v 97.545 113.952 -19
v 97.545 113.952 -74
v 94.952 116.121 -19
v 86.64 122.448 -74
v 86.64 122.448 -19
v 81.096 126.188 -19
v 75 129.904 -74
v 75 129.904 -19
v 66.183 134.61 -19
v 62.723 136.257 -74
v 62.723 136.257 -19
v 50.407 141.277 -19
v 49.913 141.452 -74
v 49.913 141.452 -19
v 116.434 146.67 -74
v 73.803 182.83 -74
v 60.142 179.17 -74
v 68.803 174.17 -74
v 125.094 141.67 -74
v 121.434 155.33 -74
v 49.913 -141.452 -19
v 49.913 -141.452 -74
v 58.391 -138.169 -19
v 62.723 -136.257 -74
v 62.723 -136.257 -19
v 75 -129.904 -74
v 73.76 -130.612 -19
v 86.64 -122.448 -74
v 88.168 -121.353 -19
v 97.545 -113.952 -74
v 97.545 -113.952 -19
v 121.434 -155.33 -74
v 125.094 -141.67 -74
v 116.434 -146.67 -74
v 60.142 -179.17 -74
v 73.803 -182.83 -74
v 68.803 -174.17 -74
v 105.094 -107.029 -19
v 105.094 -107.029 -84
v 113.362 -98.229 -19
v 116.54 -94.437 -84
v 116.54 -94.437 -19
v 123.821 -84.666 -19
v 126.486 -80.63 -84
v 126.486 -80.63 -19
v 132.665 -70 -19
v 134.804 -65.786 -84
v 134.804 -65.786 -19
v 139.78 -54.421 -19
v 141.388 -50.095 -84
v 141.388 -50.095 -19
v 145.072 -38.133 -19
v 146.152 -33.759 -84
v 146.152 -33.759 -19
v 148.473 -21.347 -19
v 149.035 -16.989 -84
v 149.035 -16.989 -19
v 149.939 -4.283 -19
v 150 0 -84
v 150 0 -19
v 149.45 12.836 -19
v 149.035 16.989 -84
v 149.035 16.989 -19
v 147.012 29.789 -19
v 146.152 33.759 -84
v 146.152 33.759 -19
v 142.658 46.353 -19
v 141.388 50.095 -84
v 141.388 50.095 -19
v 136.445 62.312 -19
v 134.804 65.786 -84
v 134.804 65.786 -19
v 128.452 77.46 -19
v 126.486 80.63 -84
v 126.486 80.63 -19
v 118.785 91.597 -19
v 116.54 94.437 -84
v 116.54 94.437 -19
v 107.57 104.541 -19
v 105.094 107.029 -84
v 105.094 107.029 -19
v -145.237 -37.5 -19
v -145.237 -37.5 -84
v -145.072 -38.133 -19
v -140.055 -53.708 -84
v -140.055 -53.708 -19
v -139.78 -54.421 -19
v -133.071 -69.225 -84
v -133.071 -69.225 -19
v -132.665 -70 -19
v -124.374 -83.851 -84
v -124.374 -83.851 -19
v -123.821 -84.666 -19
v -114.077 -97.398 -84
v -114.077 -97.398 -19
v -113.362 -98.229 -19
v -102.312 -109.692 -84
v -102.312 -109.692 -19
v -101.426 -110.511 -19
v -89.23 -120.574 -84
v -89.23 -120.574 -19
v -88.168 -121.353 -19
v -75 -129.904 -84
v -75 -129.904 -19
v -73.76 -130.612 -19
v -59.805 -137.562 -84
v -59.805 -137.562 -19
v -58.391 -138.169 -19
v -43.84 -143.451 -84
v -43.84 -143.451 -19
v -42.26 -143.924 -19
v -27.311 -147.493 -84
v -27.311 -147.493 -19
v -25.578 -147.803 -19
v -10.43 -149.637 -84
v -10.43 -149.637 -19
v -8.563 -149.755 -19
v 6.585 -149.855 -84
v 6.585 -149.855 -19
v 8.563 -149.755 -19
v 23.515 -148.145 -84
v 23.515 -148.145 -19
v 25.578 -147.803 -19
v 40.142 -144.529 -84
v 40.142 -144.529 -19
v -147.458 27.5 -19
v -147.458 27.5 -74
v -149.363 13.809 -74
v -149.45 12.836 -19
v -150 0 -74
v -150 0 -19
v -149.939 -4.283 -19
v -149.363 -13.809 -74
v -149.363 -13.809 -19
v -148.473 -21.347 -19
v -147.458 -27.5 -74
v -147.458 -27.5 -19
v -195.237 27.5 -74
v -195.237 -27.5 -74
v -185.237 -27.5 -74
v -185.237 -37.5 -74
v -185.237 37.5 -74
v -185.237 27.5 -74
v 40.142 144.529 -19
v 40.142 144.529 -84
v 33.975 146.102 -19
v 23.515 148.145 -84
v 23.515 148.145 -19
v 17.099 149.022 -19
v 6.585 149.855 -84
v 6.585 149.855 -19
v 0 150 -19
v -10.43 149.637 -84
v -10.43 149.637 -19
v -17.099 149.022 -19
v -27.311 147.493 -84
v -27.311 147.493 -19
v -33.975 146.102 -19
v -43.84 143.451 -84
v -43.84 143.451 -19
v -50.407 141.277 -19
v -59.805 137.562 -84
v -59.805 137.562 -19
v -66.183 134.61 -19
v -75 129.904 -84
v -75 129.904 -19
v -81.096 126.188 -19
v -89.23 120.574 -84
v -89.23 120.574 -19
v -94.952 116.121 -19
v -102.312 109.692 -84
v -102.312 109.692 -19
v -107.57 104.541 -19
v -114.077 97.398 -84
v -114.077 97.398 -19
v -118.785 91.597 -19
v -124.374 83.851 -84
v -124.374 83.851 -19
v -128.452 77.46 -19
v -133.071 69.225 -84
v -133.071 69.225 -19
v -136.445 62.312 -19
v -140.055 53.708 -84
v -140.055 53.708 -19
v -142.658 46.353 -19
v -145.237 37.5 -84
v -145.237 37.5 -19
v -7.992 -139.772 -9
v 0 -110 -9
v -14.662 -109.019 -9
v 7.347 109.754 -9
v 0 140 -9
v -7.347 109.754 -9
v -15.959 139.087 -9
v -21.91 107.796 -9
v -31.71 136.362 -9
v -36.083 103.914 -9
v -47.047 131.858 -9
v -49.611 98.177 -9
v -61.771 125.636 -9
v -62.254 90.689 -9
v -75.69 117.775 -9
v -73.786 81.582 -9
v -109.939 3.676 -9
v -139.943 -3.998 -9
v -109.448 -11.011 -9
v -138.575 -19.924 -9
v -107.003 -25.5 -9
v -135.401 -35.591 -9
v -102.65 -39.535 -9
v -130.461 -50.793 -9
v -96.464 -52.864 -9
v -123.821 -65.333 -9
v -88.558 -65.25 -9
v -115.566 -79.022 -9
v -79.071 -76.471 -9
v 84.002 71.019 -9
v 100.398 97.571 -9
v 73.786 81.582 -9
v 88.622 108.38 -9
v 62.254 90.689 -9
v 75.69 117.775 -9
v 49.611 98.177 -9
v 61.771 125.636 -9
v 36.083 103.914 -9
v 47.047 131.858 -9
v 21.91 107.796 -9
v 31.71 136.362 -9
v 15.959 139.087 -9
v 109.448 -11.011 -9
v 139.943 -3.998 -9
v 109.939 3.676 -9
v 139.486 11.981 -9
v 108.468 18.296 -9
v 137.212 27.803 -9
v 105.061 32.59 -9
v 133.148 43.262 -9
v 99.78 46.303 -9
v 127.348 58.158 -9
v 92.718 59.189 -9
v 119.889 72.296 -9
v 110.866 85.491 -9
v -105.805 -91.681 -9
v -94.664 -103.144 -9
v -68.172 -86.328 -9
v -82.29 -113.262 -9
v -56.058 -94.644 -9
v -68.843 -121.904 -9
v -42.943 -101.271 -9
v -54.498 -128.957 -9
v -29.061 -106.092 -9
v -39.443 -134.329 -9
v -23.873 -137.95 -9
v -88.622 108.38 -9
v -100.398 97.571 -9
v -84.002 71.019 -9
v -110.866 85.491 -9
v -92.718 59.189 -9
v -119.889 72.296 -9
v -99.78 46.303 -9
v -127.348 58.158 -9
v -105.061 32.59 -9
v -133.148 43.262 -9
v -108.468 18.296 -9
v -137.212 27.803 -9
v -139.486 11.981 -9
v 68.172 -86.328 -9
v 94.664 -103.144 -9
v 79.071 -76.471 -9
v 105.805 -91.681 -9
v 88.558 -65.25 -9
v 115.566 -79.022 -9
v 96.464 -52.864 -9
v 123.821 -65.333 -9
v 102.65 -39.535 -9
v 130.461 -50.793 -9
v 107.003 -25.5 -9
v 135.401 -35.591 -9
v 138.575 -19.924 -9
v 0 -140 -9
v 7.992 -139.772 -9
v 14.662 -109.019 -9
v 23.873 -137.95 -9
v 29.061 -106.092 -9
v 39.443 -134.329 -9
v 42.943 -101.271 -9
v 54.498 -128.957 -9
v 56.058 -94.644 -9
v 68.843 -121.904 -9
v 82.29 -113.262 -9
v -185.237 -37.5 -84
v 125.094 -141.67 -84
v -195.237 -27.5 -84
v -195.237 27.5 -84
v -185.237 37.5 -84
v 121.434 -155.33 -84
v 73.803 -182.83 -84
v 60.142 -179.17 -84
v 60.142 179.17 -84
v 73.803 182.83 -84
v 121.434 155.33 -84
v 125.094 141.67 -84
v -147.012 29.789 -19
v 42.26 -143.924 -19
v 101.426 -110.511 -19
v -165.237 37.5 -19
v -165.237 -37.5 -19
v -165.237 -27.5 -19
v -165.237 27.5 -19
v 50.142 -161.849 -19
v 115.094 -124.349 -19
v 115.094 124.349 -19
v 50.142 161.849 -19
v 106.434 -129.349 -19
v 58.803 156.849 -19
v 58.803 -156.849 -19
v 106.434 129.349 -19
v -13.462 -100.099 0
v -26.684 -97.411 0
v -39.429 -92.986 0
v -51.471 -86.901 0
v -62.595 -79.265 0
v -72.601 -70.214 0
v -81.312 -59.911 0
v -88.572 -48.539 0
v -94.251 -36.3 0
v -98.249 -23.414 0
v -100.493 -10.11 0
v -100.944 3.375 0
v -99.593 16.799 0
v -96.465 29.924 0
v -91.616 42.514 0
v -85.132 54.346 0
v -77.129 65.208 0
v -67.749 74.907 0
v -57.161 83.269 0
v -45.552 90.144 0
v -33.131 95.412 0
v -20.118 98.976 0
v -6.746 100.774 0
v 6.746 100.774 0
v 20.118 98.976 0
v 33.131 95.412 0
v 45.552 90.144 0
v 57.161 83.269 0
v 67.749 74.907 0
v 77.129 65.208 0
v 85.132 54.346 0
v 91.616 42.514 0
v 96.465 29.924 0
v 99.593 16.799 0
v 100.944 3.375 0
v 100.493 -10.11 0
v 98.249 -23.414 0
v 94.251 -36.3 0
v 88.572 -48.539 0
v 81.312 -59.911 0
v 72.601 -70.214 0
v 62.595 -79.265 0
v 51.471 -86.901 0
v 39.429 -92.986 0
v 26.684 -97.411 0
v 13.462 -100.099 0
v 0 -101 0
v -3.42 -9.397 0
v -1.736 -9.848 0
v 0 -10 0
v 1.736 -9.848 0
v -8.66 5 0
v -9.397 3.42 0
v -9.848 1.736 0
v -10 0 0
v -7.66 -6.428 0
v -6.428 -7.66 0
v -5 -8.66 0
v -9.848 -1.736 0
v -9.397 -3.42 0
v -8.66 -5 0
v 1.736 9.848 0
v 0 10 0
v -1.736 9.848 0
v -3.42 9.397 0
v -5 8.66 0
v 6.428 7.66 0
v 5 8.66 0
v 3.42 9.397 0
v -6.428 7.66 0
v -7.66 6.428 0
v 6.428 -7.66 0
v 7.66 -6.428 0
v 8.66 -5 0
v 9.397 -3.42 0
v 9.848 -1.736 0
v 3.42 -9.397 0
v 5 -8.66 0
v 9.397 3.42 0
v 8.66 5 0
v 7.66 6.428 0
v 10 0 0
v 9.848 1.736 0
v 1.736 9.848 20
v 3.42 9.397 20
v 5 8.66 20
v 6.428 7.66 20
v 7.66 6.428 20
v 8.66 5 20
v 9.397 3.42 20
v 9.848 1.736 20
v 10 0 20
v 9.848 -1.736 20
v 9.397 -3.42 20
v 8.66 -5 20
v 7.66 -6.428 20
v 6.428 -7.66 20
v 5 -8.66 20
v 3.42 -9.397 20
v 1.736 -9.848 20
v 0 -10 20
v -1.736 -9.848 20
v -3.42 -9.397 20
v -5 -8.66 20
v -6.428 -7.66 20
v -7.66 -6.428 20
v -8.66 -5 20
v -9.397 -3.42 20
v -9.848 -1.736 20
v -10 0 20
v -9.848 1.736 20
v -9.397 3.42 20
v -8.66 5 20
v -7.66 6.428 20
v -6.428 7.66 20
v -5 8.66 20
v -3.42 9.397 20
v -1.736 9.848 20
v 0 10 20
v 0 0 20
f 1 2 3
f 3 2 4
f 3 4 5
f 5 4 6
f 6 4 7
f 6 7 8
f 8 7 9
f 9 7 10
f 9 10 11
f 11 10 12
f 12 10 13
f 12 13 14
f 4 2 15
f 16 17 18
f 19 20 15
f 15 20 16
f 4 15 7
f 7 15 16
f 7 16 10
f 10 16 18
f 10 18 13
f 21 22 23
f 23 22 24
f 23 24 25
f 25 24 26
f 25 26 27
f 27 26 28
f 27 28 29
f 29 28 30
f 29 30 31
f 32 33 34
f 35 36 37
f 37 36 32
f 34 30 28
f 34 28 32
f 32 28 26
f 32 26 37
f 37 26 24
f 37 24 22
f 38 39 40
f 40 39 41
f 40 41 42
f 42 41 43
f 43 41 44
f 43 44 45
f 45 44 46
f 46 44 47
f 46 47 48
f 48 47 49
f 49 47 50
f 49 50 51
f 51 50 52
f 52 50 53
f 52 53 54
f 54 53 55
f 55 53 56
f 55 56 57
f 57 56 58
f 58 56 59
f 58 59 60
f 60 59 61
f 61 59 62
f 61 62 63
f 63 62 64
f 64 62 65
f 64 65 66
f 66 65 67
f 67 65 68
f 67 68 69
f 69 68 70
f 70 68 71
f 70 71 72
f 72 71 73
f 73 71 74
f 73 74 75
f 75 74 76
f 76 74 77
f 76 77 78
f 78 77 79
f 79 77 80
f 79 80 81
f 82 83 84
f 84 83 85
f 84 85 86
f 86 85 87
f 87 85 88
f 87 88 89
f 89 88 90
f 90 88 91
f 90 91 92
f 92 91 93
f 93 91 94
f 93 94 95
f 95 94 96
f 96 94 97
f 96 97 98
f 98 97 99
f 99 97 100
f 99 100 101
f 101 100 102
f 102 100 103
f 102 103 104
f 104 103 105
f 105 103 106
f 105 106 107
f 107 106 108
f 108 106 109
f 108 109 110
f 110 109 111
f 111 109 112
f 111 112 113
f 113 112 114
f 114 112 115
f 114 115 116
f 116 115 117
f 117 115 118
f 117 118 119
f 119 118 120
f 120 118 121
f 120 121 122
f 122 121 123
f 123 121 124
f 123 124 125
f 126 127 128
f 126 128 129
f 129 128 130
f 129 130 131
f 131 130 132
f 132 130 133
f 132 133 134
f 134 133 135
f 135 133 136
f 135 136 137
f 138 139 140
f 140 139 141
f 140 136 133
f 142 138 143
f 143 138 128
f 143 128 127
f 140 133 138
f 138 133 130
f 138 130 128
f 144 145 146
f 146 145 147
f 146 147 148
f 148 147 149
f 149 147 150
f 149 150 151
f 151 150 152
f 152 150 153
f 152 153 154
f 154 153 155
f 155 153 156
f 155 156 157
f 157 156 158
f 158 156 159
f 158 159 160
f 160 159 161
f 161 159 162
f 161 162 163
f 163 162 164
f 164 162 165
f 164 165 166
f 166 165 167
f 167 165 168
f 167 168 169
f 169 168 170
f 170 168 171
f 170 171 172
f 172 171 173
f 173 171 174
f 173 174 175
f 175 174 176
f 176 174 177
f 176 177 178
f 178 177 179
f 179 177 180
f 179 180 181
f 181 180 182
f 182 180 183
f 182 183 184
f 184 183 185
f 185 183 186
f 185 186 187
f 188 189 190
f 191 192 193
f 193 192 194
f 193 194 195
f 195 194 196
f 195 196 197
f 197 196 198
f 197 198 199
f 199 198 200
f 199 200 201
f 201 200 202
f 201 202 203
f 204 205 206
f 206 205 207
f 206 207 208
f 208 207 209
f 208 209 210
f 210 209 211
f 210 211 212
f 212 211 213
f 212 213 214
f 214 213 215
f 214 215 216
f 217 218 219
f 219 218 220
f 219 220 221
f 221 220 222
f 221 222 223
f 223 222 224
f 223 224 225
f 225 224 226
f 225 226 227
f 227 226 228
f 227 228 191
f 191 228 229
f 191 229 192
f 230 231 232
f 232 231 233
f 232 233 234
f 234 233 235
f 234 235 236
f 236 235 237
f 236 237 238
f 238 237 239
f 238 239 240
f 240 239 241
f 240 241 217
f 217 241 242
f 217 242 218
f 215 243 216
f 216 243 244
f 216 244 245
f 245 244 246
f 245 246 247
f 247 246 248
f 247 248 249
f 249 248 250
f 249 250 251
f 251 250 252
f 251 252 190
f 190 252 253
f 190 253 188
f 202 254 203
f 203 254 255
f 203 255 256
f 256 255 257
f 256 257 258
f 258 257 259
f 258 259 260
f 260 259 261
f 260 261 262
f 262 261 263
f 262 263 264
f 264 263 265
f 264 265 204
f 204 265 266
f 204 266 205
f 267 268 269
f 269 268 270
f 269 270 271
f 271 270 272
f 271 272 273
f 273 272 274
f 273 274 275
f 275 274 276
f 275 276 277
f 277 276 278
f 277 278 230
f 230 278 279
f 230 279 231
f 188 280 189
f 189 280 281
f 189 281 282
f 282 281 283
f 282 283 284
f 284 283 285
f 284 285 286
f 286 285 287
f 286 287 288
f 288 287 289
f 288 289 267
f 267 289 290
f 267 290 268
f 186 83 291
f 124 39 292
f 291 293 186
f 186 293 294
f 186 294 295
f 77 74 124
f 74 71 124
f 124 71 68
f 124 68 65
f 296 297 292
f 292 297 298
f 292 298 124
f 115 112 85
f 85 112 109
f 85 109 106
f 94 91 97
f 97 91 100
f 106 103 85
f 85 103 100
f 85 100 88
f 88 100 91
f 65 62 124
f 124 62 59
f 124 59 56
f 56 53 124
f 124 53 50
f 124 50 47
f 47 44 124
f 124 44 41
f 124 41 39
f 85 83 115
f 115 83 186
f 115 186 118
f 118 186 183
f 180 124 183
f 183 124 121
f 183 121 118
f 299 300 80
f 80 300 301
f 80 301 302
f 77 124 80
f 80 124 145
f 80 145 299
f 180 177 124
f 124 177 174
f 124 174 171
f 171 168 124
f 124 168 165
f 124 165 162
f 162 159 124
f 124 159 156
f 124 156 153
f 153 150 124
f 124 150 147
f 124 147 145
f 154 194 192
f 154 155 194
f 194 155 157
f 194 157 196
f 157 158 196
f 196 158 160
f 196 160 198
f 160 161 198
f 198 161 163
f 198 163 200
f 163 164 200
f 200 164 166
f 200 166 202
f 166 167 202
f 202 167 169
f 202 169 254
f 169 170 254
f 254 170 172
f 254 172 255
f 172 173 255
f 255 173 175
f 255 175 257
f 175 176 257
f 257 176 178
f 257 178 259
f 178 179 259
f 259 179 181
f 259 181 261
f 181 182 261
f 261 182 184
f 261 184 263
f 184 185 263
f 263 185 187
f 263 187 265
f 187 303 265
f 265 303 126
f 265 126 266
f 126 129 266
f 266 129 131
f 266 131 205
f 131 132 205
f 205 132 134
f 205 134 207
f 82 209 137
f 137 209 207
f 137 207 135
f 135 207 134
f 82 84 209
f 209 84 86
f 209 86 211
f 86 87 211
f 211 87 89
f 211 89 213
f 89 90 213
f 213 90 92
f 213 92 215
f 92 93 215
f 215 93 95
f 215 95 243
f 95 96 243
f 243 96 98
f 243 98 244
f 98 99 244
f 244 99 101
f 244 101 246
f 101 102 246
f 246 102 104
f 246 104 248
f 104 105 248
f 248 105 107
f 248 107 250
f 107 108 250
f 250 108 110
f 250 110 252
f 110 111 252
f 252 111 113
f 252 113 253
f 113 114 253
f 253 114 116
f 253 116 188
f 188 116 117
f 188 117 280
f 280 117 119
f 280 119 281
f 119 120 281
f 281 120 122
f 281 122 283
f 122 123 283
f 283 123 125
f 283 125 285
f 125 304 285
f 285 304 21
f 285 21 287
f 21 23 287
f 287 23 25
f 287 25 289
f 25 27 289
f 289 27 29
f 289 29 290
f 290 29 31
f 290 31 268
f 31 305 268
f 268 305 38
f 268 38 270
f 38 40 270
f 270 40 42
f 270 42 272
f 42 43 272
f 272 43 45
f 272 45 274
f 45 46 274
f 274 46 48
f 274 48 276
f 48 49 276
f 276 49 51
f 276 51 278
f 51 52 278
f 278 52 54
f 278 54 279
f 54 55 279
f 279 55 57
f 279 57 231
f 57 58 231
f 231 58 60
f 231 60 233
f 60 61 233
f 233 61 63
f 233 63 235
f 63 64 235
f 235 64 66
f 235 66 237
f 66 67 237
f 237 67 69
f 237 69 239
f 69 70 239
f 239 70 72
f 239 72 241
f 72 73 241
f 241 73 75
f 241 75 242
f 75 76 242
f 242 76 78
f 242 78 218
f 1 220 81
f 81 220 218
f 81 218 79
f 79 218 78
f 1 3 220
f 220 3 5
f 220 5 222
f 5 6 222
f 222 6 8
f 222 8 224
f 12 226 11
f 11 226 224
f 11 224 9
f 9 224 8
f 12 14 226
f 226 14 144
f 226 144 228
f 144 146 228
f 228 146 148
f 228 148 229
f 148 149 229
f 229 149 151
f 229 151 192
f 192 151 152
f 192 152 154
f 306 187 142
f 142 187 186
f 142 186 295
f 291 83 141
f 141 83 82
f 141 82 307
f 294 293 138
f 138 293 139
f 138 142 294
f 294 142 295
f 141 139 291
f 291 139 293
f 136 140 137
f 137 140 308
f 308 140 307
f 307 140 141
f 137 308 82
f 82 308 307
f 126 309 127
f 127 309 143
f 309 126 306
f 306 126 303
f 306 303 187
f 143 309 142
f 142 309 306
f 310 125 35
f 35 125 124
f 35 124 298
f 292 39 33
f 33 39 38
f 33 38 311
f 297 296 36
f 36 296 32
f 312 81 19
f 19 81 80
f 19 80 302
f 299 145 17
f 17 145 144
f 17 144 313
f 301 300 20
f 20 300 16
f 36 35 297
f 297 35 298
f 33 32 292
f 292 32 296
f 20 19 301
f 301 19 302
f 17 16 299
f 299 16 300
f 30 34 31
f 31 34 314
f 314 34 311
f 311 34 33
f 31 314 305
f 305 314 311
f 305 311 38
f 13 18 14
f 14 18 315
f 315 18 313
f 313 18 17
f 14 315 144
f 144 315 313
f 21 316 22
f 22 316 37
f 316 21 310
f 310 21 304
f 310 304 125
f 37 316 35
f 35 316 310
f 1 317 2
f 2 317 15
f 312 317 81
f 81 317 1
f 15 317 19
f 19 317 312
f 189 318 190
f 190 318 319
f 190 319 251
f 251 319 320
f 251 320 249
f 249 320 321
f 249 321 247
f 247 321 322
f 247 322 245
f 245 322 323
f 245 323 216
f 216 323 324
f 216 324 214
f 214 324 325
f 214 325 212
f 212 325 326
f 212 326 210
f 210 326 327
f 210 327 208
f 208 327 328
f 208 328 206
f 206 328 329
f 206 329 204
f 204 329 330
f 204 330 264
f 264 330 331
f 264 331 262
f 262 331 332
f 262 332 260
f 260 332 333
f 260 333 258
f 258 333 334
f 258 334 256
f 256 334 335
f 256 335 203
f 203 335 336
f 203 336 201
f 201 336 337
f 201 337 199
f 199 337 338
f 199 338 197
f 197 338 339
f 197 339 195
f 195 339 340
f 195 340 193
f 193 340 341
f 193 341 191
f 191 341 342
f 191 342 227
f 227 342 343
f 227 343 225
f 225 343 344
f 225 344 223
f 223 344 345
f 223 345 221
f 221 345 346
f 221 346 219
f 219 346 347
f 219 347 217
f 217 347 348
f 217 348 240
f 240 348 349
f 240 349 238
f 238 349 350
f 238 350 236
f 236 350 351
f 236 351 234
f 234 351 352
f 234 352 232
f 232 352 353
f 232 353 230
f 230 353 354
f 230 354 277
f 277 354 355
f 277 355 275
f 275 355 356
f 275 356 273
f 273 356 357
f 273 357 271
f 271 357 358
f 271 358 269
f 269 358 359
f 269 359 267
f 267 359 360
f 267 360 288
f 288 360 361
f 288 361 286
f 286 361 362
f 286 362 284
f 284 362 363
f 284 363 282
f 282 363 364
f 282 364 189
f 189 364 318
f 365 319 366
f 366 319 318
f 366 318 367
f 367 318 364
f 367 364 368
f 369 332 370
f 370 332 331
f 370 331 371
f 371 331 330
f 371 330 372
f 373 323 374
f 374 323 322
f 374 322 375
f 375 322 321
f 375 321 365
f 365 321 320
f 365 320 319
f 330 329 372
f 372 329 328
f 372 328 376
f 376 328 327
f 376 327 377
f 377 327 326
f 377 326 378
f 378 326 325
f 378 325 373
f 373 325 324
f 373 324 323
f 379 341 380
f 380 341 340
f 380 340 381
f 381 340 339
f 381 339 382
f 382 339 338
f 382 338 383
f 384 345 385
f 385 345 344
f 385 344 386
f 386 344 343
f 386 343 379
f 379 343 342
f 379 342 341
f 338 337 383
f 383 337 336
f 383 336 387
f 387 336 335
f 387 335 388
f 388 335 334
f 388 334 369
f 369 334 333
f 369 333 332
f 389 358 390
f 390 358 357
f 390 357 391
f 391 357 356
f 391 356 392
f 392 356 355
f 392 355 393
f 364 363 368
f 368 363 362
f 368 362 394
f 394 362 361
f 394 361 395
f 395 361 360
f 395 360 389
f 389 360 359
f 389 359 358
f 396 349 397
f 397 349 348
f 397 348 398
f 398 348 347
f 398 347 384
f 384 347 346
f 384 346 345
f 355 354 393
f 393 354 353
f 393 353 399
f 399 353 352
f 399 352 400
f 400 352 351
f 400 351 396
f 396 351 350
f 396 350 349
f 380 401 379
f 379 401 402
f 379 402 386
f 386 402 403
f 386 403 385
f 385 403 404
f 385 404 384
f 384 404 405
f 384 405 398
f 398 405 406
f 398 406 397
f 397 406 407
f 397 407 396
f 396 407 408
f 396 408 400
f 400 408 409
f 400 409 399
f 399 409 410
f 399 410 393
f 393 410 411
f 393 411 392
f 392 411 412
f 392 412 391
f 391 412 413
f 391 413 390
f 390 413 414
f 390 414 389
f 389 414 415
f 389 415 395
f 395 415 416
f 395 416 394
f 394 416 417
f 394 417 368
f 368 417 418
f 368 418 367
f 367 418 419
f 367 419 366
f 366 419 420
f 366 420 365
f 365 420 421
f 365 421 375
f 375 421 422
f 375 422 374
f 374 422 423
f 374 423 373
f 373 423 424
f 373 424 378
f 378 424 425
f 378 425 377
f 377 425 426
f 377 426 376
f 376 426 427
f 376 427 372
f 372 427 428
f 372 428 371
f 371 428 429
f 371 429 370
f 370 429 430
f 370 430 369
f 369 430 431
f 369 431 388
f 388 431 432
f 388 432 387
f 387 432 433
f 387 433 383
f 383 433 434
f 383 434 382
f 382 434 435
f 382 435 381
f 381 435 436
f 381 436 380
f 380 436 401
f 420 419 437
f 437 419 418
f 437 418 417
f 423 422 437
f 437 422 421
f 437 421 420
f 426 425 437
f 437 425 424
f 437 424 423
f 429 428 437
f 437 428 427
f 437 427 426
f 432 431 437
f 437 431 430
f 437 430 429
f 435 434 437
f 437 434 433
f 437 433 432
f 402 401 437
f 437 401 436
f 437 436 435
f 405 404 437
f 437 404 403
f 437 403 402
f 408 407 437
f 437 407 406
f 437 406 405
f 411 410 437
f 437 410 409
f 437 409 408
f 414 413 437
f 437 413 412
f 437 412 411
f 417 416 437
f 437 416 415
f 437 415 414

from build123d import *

# Parameters (mm, degrees)
SKETCH1_R                    = 150
BOSS_EXTRUDE1_DEPTH          = 75
CHAMFER1_SIZE                = 10
BOSS_EXTRUDE2_START          = -75
BOSS_EXTRUDE2_DEPTH          = 10
CHAMFER2_SIZE                = 10
BOSS_EXTRUDE3_DEPTH          = 10
CIRPATTERN2_COUNT            = 3
CIRPATTERN2_COPY_1_DEPTH     = 10
CIRPATTERN2_COPY_2_DEPTH     = 10
CHAMFER2_OF_CIRPATTERN2_SIZE = 10
SKETCH4_R                    = 110
BOSS_EXTRUDE4_DEPTH          = 9
BOSS_EXTRUDE4_TAPER          = 45
SKETCH5_R                    = 10
BOSS_EXTRUDE5_DEPTH          = 20
BODY_MOVE_COPY1_ANGLE        = 90


with BuildPart() as part:
    # Sketch1 → Boss-Extrude1 (new body)
    with BuildSketch(Plane(origin=(0, 0, 0), x_dir=(1, 0, 0), z_dir=(0, 1, 0))):
        with Locations(Location((0, 0, 0), (0, 0, 270))):
            Circle(SKETCH1_R)
    extrude(amount=BOSS_EXTRUDE1_DEPTH)

    # Chamfer1
    chamfer1_edges = [part.edges().sort_by_distance(p)[0] for p in [
        (0, 75, -150),
    ]]
    chamfer(chamfer1_edges, length=CHAMFER1_SIZE)

    # Sketch2 → Boss-Extrude2 (add)
    with BuildSketch(Plane(origin=(0, 75, 0), x_dir=(1, 0, 0), z_dir=(0, 1, 0)).offset(BOSS_EXTRUDE2_START)):
        with BuildLine():
            Line((-195.236875483, -37.5), (-195.236875483, 37.5))
            Line((-195.236875483, 37.5), (-145.236875483, 37.5))
            ThreePointArc((-145.236875483, 37.5), (-150, 0), (-145.236875483, -37.5))
            Line((-145.236875483, -37.5), (-195.236875483, -37.5))
        make_face()
    boss_extrude2 = extrude(amount=BOSS_EXTRUDE2_DEPTH)

    # Chamfer2
    chamfer2_edges = [part.edges().sort_by_distance(p)[0] for p in [
        (-195.236875483, 5, -37.5),
        (-195.236875483, 5, 37.5),
    ]]
    chamfer(chamfer2_edges, length=CHAMFER2_SIZE)

    # Sketch3 → Boss-Extrude3 (add)
    with BuildSketch(Plane.XY.offset(37.5)):
        Polygon((-145.236875483, 10), (-145.236875483, 65), (-165.236875483, 65), (-185.236875483, 10), align=None)
    boss_extrude3 = extrude(amount=-BOSS_EXTRUDE3_DEPTH)

    # Mirror3: Boss-Extrude3 across plane
    add(boss_extrude3.mirror(Plane.XY))

    # CirPattern2: Boss-Extrude2, Boss-Extrude3 ×3 about axis
    cirpattern2_axis = Axis((0, 0, 0), (0, 1, 0))
    add([boss_extrude2.rotate(cirpattern2_axis, i * 360 / CIRPATTERN2_COUNT) for i in range(1, CIRPATTERN2_COUNT)])
    add([boss_extrude3.rotate(cirpattern2_axis, i * 360 / CIRPATTERN2_COUNT) for i in range(1, CIRPATTERN2_COUNT)])

    # CirPattern2 copy 1 sketch → CirPattern2 copy 1 (add)
    with BuildSketch(Plane(origin=(-32.475952642, 0, 18.75), x_dir=(-0.4999999999999998, 0, -0.8660254037844387), z_dir=(-0.8660254037844387, 0, 0.4999999999999998))):
        Polygon((-145.236875483, -10), (-145.236875483, -65), (-165.236875483, -65), (-185.236875483, -10), align=None)
    extrude(amount=-CIRPATTERN2_COPY_1_DEPTH)

    # CirPattern2 copy 2 sketch → CirPattern2 copy 2 (add)
    with BuildSketch(Plane(origin=(32.475952642, 0, 18.75), x_dir=(-0.5000000000000004, 0, 0.8660254037844384), z_dir=(0.8660254037844384, 0, 0.5000000000000004))):
        Polygon((-145.236875483, -10), (-145.236875483, -65), (-165.236875483, -65), (-185.236875483, -10), align=None)
    extrude(amount=-CIRPATTERN2_COPY_2_DEPTH)

    # Chamfer2 of CirPattern2
    chamfer2_of_cirpattern2_edges = [part.edges().sort_by_distance(p)[0] for p in [
        (65.142485099, 5, 187.830093924),
        (130.094390383, 5, 150.330093924),
        (130.094390383, 5, -150.330093924),
        (65.142485099, 5, -187.830093924),
    ]]
    chamfer(chamfer2_of_cirpattern2_edges, length=CHAMFER2_OF_CIRPATTERN2_SIZE)

    # Sketch4 → Boss-Extrude4 (add)
    with BuildSketch(Plane(origin=(0, 75, 0), x_dir=(1, 0, 0), z_dir=(0, 1, 0))):
        Circle(SKETCH4_R)
    extrude(amount=BOSS_EXTRUDE4_DEPTH, taper=BOSS_EXTRUDE4_TAPER)

    # Sketch5 → Boss-Extrude5 (add)
    with BuildSketch(Plane(origin=(0, 84, 0), x_dir=(1, 0, 0), z_dir=(0, 1, 0))):
        with Locations(Location((0, 0, 0), (0, 0, 270))):
            Circle(SKETCH5_R)
    extrude(amount=BOSS_EXTRUDE5_DEPTH)


with BuildPart() as part_1:
    # Body-Move/Copy1: read off the stored shape, not the designer's step
    # Body-Move/Copy1: moved
    add(part.part.rotate(Axis((0, 0, 0), (1, 0, 0)), BODY_MOVE_COPY1_ANGLE))


with BuildPart() as part_2:
    # Body-Move/Copy2: moved
    add(part_1.part.moved(Location((5e-08, 0, -83.99999995))))


solid = part_2.part
